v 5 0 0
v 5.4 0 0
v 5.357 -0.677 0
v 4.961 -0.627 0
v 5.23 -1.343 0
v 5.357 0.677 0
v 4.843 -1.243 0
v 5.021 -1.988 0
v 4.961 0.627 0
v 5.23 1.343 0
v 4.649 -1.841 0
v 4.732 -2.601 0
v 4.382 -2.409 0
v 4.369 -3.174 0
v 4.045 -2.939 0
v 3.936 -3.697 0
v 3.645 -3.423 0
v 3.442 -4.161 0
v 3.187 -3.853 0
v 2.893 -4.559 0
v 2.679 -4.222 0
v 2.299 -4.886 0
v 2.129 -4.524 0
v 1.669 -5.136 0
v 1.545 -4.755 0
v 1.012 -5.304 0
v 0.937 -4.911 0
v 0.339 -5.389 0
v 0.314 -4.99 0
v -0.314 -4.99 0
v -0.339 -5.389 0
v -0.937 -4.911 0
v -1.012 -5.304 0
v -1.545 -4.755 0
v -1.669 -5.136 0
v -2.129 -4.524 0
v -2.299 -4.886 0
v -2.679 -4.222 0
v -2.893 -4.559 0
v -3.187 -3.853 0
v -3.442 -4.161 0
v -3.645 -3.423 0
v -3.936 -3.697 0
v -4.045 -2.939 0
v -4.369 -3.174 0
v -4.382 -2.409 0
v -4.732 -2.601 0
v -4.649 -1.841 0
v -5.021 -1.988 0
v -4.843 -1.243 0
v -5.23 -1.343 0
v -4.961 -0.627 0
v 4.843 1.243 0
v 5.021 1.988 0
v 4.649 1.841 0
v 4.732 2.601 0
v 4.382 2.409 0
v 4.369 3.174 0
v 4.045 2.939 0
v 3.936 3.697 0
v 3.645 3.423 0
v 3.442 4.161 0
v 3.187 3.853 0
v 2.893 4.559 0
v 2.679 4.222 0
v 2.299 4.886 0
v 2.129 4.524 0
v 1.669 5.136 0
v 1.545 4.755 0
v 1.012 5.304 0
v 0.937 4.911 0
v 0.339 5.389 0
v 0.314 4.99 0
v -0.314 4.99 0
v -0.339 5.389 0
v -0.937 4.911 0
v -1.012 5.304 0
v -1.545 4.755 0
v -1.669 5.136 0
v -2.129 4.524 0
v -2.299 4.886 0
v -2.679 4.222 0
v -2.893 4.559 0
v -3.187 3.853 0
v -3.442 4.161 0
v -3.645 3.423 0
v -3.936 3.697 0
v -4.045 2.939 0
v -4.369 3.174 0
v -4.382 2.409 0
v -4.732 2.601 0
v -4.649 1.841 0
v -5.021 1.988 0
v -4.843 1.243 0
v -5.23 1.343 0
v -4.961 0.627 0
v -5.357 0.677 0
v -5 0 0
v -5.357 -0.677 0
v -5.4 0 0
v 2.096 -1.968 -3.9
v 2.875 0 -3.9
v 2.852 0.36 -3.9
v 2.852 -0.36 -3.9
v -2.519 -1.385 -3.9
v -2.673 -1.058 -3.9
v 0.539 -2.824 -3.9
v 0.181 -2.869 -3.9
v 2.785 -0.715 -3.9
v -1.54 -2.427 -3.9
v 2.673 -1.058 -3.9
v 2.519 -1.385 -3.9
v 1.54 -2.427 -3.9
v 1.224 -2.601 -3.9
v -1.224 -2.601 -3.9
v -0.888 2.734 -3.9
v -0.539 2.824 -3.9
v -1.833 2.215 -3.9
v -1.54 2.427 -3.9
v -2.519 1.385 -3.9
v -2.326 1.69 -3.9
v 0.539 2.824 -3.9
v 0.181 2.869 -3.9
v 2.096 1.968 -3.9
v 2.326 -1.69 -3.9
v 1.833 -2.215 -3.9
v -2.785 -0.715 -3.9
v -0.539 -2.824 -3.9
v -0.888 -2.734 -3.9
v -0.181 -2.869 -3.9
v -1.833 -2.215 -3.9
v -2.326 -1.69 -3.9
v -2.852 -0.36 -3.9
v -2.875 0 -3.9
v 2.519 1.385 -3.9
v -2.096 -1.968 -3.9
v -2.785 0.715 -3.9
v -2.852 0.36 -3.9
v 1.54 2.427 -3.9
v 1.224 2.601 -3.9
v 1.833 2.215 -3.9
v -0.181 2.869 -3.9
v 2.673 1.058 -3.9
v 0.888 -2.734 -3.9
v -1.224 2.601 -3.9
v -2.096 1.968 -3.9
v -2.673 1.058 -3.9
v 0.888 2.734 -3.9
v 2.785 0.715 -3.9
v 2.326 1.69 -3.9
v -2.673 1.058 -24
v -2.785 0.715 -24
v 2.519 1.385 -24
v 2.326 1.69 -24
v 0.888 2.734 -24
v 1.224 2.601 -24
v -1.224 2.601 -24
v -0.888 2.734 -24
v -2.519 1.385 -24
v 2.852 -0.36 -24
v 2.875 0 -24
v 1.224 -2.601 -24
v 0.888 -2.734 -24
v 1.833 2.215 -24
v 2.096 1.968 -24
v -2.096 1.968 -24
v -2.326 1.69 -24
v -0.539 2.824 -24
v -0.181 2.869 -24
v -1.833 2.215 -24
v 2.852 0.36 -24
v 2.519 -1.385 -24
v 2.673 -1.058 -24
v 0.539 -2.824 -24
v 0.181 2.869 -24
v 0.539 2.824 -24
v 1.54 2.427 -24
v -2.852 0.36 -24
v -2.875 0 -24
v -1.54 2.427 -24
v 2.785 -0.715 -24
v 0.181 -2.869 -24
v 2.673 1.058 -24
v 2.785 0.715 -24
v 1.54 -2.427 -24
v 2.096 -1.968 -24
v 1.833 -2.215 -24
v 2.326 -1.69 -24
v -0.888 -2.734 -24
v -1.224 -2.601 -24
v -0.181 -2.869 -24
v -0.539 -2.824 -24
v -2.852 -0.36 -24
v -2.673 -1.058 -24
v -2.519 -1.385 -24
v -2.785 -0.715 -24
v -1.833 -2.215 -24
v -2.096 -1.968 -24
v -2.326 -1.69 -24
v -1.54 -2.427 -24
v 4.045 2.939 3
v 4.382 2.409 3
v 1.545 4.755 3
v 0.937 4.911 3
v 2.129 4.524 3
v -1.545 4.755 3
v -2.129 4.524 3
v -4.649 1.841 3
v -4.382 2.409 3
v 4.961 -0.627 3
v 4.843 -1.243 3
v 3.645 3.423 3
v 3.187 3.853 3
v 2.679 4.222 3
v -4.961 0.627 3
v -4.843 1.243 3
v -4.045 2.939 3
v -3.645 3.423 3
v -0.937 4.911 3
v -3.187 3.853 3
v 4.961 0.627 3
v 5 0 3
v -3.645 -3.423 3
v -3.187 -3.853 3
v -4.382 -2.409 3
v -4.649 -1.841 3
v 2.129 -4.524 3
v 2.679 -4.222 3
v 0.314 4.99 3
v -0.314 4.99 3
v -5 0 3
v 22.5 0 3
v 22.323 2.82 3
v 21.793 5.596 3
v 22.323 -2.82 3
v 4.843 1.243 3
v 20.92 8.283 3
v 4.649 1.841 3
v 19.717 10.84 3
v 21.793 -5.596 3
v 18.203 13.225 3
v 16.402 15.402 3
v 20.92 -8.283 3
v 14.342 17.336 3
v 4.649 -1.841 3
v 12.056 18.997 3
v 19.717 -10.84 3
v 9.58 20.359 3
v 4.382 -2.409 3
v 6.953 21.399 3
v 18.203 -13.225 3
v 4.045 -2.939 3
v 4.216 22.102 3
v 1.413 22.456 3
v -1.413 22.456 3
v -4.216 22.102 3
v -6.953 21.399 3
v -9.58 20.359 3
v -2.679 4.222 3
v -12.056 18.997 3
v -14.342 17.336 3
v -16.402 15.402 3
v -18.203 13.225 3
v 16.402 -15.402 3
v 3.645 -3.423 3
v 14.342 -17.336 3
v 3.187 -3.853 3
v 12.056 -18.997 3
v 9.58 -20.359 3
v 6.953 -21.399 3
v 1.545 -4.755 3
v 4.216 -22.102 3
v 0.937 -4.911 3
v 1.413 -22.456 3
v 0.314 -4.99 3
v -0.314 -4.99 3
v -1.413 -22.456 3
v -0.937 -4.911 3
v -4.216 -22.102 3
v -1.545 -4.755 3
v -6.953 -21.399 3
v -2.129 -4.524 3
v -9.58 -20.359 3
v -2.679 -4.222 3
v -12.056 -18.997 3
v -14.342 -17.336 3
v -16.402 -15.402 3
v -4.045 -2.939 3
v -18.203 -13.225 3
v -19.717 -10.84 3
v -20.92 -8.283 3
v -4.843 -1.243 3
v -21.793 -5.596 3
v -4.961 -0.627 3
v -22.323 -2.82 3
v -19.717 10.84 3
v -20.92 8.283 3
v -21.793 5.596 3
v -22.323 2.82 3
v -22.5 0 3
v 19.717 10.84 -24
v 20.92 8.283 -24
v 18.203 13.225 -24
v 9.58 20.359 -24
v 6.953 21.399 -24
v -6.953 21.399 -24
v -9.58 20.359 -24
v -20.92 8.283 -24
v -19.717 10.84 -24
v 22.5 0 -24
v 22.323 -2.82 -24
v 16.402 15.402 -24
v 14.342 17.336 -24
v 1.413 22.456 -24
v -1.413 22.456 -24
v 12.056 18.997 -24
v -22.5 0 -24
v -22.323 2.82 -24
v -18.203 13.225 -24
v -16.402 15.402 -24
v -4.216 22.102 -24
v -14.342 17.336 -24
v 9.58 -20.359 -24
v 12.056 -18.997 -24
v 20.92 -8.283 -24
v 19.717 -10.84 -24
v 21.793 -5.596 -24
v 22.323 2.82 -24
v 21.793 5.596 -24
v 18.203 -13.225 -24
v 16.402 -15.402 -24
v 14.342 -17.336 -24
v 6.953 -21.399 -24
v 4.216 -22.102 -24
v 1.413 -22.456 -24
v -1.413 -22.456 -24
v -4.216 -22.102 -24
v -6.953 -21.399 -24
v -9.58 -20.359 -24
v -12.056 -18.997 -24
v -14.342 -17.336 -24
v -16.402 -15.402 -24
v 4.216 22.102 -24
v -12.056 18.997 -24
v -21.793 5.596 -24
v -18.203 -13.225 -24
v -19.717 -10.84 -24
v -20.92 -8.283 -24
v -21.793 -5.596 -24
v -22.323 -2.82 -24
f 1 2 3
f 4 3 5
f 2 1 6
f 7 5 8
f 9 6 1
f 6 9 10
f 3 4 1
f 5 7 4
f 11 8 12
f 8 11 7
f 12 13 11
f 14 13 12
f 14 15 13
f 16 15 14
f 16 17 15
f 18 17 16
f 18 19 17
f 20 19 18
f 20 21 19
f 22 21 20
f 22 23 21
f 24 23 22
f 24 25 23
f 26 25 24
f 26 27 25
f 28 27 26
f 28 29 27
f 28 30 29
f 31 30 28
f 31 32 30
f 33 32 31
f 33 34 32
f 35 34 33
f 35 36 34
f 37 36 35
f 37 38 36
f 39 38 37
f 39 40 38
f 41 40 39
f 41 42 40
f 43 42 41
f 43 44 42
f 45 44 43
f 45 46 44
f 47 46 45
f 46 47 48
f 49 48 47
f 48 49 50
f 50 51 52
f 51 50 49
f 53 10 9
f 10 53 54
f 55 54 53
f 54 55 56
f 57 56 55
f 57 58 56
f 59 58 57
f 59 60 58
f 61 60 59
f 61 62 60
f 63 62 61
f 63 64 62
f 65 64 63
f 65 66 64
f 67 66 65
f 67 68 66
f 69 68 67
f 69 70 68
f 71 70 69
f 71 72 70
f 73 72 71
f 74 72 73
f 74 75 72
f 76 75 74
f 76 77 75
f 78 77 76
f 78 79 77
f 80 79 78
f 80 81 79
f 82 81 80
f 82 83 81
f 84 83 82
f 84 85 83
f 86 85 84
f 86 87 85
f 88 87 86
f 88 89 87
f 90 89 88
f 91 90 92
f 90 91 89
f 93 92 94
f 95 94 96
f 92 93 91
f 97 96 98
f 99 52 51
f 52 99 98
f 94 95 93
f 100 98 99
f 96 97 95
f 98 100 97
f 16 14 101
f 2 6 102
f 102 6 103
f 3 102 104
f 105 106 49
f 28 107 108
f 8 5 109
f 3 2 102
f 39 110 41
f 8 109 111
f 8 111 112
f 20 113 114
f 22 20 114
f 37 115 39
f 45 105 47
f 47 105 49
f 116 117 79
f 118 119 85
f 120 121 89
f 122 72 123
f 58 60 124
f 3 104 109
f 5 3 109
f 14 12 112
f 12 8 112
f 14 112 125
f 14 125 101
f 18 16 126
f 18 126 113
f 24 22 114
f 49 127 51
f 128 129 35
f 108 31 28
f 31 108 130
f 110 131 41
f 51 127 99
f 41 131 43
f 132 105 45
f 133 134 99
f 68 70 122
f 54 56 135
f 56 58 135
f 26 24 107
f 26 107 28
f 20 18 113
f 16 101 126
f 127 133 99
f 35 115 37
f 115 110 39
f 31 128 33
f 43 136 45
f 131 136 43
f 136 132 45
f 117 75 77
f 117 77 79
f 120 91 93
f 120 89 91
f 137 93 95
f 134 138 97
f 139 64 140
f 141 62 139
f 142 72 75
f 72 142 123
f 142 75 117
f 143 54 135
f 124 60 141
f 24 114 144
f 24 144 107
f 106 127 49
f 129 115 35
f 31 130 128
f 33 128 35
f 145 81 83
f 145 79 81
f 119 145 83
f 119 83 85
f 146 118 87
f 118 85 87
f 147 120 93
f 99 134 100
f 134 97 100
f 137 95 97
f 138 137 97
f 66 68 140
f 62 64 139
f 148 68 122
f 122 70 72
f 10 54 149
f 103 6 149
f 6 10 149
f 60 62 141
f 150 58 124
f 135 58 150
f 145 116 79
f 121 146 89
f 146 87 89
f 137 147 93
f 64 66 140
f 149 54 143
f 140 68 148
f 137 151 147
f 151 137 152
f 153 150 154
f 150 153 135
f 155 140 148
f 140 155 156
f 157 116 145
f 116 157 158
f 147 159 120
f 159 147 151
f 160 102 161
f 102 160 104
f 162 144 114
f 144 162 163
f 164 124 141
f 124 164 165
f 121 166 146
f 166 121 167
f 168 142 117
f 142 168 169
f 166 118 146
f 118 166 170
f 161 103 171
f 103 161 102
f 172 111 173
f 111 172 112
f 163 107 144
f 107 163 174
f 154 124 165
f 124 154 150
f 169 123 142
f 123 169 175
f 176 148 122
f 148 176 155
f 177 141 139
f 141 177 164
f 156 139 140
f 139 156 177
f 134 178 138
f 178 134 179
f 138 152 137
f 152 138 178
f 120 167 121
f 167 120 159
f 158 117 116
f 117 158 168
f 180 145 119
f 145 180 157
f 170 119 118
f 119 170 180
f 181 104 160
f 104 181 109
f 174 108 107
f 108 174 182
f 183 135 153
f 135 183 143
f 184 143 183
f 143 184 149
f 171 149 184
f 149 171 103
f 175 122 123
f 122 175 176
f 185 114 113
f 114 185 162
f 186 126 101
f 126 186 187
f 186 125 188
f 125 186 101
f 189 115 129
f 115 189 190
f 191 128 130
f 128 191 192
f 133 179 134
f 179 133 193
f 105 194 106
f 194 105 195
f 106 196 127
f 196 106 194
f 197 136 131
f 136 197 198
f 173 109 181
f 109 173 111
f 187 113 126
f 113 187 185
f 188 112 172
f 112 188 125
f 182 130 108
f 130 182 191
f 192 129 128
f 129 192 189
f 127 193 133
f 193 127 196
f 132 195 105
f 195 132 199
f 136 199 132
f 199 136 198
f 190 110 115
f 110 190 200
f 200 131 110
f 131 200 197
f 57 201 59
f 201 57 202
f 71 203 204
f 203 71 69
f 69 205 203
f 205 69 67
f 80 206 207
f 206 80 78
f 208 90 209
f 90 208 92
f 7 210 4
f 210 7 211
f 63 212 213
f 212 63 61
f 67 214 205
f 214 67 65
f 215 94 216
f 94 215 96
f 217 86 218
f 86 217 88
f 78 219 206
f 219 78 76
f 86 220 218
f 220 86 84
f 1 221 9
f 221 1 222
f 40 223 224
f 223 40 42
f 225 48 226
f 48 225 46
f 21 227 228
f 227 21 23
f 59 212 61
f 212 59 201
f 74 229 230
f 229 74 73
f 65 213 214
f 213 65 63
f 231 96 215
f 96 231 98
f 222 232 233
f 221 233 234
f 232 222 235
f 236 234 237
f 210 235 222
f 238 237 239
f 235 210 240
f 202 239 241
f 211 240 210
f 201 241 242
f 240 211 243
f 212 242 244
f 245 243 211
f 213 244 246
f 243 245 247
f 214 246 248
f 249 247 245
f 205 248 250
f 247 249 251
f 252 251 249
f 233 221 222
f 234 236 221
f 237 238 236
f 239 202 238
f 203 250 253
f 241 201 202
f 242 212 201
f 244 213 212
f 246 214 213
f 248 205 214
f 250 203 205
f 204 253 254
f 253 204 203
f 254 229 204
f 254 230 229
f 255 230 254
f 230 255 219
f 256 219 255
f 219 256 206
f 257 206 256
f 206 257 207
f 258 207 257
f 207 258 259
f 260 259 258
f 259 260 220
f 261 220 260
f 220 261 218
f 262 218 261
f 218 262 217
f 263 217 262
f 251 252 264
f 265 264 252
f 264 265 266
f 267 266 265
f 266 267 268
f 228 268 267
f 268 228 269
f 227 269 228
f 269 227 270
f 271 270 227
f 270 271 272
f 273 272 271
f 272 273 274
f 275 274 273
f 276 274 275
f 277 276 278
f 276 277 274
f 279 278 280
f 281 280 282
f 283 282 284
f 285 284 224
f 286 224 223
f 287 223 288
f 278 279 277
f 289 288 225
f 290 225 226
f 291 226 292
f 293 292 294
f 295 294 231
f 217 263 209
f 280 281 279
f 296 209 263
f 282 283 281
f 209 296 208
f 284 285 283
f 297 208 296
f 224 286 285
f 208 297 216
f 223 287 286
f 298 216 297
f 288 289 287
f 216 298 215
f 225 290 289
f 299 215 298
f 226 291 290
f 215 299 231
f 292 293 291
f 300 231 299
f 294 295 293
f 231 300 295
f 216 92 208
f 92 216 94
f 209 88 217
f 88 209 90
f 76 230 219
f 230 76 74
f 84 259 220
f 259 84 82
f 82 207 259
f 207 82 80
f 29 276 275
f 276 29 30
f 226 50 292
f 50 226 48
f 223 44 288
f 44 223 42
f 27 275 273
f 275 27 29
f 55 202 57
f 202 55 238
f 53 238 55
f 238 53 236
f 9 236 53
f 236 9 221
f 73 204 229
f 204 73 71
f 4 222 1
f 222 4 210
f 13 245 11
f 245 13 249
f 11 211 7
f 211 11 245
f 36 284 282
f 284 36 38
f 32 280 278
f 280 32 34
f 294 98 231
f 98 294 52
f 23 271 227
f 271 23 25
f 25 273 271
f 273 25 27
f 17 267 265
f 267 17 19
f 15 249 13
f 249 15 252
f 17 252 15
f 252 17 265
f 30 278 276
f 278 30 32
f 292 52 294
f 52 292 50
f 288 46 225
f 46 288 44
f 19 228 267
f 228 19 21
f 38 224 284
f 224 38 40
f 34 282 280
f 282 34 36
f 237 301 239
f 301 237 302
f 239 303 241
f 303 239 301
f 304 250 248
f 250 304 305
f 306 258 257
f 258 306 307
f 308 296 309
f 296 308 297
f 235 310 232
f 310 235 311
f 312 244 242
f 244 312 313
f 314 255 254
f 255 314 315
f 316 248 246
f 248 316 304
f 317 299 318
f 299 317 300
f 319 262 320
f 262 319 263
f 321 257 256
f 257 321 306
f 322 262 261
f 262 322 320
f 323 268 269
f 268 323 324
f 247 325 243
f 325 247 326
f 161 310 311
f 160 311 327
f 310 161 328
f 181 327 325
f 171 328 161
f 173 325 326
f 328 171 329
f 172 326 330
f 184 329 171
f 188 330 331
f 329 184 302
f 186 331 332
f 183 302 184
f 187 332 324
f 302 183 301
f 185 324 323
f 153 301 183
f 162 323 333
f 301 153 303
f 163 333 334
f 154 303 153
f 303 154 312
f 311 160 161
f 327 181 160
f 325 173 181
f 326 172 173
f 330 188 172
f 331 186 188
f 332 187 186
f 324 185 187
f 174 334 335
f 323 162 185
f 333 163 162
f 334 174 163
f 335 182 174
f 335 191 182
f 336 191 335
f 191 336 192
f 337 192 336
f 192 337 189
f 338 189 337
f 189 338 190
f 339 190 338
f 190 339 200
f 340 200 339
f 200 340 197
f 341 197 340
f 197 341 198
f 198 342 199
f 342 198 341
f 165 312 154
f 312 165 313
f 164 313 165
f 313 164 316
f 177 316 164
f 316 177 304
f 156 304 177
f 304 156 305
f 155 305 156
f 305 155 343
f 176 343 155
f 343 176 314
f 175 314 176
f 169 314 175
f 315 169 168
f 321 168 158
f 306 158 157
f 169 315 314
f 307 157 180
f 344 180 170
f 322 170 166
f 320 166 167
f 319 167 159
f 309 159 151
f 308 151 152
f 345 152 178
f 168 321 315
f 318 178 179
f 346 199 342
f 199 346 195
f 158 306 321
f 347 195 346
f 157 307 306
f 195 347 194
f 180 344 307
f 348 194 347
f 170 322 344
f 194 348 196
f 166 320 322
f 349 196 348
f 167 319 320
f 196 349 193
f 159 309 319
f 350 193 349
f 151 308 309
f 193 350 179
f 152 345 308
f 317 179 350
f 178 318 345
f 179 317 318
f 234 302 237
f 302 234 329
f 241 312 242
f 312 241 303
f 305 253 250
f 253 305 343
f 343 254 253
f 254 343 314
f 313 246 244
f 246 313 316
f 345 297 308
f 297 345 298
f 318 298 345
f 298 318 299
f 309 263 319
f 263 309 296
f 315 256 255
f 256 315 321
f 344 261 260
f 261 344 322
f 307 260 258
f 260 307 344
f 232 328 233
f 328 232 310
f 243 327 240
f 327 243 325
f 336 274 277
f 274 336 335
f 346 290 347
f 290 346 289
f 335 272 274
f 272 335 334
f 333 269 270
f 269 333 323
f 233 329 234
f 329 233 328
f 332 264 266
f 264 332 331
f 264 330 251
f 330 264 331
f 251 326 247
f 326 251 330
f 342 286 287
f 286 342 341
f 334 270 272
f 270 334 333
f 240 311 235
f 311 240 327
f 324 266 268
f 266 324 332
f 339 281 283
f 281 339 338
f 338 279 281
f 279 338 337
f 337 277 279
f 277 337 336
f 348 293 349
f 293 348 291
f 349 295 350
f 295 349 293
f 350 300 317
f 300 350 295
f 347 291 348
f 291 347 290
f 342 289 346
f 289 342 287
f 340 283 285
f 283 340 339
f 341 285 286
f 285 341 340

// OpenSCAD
$fn = 50;


difference() {
	union() {
		translate(v = [0, 0, -24.0000000000]) {
			cylinder(h = 27, r = 22.5000000000);
		}
	}
	union() {
		translate(v = [0, 0, 0]) {
			rotate(a = [0, 0, 0]) {
				difference() {
					union() {
						translate(v = [0, 0, -27.0000000000]) {
							cylinder(h = 27, r = 2.6000000000);
						}
						translate(v = [0, 0, -3.9000000000]) {
							cylinder(h = 3.9000000000, r1 = 2.8750000000, r2 = 5.4000000000);
						}
						translate(v = [0, 0, -27.0000000000]) {
							cylinder(h = 27, r = 2.8750000000);
						}
						translate(v = [0, 0, -27.0000000000]) {
							cylinder(h = 27, r = 2.6000000000);
						}
					}
					union();
				}
			}
		}
		#cylinder(h = 3, r = 5.0000000000);
	}
}
